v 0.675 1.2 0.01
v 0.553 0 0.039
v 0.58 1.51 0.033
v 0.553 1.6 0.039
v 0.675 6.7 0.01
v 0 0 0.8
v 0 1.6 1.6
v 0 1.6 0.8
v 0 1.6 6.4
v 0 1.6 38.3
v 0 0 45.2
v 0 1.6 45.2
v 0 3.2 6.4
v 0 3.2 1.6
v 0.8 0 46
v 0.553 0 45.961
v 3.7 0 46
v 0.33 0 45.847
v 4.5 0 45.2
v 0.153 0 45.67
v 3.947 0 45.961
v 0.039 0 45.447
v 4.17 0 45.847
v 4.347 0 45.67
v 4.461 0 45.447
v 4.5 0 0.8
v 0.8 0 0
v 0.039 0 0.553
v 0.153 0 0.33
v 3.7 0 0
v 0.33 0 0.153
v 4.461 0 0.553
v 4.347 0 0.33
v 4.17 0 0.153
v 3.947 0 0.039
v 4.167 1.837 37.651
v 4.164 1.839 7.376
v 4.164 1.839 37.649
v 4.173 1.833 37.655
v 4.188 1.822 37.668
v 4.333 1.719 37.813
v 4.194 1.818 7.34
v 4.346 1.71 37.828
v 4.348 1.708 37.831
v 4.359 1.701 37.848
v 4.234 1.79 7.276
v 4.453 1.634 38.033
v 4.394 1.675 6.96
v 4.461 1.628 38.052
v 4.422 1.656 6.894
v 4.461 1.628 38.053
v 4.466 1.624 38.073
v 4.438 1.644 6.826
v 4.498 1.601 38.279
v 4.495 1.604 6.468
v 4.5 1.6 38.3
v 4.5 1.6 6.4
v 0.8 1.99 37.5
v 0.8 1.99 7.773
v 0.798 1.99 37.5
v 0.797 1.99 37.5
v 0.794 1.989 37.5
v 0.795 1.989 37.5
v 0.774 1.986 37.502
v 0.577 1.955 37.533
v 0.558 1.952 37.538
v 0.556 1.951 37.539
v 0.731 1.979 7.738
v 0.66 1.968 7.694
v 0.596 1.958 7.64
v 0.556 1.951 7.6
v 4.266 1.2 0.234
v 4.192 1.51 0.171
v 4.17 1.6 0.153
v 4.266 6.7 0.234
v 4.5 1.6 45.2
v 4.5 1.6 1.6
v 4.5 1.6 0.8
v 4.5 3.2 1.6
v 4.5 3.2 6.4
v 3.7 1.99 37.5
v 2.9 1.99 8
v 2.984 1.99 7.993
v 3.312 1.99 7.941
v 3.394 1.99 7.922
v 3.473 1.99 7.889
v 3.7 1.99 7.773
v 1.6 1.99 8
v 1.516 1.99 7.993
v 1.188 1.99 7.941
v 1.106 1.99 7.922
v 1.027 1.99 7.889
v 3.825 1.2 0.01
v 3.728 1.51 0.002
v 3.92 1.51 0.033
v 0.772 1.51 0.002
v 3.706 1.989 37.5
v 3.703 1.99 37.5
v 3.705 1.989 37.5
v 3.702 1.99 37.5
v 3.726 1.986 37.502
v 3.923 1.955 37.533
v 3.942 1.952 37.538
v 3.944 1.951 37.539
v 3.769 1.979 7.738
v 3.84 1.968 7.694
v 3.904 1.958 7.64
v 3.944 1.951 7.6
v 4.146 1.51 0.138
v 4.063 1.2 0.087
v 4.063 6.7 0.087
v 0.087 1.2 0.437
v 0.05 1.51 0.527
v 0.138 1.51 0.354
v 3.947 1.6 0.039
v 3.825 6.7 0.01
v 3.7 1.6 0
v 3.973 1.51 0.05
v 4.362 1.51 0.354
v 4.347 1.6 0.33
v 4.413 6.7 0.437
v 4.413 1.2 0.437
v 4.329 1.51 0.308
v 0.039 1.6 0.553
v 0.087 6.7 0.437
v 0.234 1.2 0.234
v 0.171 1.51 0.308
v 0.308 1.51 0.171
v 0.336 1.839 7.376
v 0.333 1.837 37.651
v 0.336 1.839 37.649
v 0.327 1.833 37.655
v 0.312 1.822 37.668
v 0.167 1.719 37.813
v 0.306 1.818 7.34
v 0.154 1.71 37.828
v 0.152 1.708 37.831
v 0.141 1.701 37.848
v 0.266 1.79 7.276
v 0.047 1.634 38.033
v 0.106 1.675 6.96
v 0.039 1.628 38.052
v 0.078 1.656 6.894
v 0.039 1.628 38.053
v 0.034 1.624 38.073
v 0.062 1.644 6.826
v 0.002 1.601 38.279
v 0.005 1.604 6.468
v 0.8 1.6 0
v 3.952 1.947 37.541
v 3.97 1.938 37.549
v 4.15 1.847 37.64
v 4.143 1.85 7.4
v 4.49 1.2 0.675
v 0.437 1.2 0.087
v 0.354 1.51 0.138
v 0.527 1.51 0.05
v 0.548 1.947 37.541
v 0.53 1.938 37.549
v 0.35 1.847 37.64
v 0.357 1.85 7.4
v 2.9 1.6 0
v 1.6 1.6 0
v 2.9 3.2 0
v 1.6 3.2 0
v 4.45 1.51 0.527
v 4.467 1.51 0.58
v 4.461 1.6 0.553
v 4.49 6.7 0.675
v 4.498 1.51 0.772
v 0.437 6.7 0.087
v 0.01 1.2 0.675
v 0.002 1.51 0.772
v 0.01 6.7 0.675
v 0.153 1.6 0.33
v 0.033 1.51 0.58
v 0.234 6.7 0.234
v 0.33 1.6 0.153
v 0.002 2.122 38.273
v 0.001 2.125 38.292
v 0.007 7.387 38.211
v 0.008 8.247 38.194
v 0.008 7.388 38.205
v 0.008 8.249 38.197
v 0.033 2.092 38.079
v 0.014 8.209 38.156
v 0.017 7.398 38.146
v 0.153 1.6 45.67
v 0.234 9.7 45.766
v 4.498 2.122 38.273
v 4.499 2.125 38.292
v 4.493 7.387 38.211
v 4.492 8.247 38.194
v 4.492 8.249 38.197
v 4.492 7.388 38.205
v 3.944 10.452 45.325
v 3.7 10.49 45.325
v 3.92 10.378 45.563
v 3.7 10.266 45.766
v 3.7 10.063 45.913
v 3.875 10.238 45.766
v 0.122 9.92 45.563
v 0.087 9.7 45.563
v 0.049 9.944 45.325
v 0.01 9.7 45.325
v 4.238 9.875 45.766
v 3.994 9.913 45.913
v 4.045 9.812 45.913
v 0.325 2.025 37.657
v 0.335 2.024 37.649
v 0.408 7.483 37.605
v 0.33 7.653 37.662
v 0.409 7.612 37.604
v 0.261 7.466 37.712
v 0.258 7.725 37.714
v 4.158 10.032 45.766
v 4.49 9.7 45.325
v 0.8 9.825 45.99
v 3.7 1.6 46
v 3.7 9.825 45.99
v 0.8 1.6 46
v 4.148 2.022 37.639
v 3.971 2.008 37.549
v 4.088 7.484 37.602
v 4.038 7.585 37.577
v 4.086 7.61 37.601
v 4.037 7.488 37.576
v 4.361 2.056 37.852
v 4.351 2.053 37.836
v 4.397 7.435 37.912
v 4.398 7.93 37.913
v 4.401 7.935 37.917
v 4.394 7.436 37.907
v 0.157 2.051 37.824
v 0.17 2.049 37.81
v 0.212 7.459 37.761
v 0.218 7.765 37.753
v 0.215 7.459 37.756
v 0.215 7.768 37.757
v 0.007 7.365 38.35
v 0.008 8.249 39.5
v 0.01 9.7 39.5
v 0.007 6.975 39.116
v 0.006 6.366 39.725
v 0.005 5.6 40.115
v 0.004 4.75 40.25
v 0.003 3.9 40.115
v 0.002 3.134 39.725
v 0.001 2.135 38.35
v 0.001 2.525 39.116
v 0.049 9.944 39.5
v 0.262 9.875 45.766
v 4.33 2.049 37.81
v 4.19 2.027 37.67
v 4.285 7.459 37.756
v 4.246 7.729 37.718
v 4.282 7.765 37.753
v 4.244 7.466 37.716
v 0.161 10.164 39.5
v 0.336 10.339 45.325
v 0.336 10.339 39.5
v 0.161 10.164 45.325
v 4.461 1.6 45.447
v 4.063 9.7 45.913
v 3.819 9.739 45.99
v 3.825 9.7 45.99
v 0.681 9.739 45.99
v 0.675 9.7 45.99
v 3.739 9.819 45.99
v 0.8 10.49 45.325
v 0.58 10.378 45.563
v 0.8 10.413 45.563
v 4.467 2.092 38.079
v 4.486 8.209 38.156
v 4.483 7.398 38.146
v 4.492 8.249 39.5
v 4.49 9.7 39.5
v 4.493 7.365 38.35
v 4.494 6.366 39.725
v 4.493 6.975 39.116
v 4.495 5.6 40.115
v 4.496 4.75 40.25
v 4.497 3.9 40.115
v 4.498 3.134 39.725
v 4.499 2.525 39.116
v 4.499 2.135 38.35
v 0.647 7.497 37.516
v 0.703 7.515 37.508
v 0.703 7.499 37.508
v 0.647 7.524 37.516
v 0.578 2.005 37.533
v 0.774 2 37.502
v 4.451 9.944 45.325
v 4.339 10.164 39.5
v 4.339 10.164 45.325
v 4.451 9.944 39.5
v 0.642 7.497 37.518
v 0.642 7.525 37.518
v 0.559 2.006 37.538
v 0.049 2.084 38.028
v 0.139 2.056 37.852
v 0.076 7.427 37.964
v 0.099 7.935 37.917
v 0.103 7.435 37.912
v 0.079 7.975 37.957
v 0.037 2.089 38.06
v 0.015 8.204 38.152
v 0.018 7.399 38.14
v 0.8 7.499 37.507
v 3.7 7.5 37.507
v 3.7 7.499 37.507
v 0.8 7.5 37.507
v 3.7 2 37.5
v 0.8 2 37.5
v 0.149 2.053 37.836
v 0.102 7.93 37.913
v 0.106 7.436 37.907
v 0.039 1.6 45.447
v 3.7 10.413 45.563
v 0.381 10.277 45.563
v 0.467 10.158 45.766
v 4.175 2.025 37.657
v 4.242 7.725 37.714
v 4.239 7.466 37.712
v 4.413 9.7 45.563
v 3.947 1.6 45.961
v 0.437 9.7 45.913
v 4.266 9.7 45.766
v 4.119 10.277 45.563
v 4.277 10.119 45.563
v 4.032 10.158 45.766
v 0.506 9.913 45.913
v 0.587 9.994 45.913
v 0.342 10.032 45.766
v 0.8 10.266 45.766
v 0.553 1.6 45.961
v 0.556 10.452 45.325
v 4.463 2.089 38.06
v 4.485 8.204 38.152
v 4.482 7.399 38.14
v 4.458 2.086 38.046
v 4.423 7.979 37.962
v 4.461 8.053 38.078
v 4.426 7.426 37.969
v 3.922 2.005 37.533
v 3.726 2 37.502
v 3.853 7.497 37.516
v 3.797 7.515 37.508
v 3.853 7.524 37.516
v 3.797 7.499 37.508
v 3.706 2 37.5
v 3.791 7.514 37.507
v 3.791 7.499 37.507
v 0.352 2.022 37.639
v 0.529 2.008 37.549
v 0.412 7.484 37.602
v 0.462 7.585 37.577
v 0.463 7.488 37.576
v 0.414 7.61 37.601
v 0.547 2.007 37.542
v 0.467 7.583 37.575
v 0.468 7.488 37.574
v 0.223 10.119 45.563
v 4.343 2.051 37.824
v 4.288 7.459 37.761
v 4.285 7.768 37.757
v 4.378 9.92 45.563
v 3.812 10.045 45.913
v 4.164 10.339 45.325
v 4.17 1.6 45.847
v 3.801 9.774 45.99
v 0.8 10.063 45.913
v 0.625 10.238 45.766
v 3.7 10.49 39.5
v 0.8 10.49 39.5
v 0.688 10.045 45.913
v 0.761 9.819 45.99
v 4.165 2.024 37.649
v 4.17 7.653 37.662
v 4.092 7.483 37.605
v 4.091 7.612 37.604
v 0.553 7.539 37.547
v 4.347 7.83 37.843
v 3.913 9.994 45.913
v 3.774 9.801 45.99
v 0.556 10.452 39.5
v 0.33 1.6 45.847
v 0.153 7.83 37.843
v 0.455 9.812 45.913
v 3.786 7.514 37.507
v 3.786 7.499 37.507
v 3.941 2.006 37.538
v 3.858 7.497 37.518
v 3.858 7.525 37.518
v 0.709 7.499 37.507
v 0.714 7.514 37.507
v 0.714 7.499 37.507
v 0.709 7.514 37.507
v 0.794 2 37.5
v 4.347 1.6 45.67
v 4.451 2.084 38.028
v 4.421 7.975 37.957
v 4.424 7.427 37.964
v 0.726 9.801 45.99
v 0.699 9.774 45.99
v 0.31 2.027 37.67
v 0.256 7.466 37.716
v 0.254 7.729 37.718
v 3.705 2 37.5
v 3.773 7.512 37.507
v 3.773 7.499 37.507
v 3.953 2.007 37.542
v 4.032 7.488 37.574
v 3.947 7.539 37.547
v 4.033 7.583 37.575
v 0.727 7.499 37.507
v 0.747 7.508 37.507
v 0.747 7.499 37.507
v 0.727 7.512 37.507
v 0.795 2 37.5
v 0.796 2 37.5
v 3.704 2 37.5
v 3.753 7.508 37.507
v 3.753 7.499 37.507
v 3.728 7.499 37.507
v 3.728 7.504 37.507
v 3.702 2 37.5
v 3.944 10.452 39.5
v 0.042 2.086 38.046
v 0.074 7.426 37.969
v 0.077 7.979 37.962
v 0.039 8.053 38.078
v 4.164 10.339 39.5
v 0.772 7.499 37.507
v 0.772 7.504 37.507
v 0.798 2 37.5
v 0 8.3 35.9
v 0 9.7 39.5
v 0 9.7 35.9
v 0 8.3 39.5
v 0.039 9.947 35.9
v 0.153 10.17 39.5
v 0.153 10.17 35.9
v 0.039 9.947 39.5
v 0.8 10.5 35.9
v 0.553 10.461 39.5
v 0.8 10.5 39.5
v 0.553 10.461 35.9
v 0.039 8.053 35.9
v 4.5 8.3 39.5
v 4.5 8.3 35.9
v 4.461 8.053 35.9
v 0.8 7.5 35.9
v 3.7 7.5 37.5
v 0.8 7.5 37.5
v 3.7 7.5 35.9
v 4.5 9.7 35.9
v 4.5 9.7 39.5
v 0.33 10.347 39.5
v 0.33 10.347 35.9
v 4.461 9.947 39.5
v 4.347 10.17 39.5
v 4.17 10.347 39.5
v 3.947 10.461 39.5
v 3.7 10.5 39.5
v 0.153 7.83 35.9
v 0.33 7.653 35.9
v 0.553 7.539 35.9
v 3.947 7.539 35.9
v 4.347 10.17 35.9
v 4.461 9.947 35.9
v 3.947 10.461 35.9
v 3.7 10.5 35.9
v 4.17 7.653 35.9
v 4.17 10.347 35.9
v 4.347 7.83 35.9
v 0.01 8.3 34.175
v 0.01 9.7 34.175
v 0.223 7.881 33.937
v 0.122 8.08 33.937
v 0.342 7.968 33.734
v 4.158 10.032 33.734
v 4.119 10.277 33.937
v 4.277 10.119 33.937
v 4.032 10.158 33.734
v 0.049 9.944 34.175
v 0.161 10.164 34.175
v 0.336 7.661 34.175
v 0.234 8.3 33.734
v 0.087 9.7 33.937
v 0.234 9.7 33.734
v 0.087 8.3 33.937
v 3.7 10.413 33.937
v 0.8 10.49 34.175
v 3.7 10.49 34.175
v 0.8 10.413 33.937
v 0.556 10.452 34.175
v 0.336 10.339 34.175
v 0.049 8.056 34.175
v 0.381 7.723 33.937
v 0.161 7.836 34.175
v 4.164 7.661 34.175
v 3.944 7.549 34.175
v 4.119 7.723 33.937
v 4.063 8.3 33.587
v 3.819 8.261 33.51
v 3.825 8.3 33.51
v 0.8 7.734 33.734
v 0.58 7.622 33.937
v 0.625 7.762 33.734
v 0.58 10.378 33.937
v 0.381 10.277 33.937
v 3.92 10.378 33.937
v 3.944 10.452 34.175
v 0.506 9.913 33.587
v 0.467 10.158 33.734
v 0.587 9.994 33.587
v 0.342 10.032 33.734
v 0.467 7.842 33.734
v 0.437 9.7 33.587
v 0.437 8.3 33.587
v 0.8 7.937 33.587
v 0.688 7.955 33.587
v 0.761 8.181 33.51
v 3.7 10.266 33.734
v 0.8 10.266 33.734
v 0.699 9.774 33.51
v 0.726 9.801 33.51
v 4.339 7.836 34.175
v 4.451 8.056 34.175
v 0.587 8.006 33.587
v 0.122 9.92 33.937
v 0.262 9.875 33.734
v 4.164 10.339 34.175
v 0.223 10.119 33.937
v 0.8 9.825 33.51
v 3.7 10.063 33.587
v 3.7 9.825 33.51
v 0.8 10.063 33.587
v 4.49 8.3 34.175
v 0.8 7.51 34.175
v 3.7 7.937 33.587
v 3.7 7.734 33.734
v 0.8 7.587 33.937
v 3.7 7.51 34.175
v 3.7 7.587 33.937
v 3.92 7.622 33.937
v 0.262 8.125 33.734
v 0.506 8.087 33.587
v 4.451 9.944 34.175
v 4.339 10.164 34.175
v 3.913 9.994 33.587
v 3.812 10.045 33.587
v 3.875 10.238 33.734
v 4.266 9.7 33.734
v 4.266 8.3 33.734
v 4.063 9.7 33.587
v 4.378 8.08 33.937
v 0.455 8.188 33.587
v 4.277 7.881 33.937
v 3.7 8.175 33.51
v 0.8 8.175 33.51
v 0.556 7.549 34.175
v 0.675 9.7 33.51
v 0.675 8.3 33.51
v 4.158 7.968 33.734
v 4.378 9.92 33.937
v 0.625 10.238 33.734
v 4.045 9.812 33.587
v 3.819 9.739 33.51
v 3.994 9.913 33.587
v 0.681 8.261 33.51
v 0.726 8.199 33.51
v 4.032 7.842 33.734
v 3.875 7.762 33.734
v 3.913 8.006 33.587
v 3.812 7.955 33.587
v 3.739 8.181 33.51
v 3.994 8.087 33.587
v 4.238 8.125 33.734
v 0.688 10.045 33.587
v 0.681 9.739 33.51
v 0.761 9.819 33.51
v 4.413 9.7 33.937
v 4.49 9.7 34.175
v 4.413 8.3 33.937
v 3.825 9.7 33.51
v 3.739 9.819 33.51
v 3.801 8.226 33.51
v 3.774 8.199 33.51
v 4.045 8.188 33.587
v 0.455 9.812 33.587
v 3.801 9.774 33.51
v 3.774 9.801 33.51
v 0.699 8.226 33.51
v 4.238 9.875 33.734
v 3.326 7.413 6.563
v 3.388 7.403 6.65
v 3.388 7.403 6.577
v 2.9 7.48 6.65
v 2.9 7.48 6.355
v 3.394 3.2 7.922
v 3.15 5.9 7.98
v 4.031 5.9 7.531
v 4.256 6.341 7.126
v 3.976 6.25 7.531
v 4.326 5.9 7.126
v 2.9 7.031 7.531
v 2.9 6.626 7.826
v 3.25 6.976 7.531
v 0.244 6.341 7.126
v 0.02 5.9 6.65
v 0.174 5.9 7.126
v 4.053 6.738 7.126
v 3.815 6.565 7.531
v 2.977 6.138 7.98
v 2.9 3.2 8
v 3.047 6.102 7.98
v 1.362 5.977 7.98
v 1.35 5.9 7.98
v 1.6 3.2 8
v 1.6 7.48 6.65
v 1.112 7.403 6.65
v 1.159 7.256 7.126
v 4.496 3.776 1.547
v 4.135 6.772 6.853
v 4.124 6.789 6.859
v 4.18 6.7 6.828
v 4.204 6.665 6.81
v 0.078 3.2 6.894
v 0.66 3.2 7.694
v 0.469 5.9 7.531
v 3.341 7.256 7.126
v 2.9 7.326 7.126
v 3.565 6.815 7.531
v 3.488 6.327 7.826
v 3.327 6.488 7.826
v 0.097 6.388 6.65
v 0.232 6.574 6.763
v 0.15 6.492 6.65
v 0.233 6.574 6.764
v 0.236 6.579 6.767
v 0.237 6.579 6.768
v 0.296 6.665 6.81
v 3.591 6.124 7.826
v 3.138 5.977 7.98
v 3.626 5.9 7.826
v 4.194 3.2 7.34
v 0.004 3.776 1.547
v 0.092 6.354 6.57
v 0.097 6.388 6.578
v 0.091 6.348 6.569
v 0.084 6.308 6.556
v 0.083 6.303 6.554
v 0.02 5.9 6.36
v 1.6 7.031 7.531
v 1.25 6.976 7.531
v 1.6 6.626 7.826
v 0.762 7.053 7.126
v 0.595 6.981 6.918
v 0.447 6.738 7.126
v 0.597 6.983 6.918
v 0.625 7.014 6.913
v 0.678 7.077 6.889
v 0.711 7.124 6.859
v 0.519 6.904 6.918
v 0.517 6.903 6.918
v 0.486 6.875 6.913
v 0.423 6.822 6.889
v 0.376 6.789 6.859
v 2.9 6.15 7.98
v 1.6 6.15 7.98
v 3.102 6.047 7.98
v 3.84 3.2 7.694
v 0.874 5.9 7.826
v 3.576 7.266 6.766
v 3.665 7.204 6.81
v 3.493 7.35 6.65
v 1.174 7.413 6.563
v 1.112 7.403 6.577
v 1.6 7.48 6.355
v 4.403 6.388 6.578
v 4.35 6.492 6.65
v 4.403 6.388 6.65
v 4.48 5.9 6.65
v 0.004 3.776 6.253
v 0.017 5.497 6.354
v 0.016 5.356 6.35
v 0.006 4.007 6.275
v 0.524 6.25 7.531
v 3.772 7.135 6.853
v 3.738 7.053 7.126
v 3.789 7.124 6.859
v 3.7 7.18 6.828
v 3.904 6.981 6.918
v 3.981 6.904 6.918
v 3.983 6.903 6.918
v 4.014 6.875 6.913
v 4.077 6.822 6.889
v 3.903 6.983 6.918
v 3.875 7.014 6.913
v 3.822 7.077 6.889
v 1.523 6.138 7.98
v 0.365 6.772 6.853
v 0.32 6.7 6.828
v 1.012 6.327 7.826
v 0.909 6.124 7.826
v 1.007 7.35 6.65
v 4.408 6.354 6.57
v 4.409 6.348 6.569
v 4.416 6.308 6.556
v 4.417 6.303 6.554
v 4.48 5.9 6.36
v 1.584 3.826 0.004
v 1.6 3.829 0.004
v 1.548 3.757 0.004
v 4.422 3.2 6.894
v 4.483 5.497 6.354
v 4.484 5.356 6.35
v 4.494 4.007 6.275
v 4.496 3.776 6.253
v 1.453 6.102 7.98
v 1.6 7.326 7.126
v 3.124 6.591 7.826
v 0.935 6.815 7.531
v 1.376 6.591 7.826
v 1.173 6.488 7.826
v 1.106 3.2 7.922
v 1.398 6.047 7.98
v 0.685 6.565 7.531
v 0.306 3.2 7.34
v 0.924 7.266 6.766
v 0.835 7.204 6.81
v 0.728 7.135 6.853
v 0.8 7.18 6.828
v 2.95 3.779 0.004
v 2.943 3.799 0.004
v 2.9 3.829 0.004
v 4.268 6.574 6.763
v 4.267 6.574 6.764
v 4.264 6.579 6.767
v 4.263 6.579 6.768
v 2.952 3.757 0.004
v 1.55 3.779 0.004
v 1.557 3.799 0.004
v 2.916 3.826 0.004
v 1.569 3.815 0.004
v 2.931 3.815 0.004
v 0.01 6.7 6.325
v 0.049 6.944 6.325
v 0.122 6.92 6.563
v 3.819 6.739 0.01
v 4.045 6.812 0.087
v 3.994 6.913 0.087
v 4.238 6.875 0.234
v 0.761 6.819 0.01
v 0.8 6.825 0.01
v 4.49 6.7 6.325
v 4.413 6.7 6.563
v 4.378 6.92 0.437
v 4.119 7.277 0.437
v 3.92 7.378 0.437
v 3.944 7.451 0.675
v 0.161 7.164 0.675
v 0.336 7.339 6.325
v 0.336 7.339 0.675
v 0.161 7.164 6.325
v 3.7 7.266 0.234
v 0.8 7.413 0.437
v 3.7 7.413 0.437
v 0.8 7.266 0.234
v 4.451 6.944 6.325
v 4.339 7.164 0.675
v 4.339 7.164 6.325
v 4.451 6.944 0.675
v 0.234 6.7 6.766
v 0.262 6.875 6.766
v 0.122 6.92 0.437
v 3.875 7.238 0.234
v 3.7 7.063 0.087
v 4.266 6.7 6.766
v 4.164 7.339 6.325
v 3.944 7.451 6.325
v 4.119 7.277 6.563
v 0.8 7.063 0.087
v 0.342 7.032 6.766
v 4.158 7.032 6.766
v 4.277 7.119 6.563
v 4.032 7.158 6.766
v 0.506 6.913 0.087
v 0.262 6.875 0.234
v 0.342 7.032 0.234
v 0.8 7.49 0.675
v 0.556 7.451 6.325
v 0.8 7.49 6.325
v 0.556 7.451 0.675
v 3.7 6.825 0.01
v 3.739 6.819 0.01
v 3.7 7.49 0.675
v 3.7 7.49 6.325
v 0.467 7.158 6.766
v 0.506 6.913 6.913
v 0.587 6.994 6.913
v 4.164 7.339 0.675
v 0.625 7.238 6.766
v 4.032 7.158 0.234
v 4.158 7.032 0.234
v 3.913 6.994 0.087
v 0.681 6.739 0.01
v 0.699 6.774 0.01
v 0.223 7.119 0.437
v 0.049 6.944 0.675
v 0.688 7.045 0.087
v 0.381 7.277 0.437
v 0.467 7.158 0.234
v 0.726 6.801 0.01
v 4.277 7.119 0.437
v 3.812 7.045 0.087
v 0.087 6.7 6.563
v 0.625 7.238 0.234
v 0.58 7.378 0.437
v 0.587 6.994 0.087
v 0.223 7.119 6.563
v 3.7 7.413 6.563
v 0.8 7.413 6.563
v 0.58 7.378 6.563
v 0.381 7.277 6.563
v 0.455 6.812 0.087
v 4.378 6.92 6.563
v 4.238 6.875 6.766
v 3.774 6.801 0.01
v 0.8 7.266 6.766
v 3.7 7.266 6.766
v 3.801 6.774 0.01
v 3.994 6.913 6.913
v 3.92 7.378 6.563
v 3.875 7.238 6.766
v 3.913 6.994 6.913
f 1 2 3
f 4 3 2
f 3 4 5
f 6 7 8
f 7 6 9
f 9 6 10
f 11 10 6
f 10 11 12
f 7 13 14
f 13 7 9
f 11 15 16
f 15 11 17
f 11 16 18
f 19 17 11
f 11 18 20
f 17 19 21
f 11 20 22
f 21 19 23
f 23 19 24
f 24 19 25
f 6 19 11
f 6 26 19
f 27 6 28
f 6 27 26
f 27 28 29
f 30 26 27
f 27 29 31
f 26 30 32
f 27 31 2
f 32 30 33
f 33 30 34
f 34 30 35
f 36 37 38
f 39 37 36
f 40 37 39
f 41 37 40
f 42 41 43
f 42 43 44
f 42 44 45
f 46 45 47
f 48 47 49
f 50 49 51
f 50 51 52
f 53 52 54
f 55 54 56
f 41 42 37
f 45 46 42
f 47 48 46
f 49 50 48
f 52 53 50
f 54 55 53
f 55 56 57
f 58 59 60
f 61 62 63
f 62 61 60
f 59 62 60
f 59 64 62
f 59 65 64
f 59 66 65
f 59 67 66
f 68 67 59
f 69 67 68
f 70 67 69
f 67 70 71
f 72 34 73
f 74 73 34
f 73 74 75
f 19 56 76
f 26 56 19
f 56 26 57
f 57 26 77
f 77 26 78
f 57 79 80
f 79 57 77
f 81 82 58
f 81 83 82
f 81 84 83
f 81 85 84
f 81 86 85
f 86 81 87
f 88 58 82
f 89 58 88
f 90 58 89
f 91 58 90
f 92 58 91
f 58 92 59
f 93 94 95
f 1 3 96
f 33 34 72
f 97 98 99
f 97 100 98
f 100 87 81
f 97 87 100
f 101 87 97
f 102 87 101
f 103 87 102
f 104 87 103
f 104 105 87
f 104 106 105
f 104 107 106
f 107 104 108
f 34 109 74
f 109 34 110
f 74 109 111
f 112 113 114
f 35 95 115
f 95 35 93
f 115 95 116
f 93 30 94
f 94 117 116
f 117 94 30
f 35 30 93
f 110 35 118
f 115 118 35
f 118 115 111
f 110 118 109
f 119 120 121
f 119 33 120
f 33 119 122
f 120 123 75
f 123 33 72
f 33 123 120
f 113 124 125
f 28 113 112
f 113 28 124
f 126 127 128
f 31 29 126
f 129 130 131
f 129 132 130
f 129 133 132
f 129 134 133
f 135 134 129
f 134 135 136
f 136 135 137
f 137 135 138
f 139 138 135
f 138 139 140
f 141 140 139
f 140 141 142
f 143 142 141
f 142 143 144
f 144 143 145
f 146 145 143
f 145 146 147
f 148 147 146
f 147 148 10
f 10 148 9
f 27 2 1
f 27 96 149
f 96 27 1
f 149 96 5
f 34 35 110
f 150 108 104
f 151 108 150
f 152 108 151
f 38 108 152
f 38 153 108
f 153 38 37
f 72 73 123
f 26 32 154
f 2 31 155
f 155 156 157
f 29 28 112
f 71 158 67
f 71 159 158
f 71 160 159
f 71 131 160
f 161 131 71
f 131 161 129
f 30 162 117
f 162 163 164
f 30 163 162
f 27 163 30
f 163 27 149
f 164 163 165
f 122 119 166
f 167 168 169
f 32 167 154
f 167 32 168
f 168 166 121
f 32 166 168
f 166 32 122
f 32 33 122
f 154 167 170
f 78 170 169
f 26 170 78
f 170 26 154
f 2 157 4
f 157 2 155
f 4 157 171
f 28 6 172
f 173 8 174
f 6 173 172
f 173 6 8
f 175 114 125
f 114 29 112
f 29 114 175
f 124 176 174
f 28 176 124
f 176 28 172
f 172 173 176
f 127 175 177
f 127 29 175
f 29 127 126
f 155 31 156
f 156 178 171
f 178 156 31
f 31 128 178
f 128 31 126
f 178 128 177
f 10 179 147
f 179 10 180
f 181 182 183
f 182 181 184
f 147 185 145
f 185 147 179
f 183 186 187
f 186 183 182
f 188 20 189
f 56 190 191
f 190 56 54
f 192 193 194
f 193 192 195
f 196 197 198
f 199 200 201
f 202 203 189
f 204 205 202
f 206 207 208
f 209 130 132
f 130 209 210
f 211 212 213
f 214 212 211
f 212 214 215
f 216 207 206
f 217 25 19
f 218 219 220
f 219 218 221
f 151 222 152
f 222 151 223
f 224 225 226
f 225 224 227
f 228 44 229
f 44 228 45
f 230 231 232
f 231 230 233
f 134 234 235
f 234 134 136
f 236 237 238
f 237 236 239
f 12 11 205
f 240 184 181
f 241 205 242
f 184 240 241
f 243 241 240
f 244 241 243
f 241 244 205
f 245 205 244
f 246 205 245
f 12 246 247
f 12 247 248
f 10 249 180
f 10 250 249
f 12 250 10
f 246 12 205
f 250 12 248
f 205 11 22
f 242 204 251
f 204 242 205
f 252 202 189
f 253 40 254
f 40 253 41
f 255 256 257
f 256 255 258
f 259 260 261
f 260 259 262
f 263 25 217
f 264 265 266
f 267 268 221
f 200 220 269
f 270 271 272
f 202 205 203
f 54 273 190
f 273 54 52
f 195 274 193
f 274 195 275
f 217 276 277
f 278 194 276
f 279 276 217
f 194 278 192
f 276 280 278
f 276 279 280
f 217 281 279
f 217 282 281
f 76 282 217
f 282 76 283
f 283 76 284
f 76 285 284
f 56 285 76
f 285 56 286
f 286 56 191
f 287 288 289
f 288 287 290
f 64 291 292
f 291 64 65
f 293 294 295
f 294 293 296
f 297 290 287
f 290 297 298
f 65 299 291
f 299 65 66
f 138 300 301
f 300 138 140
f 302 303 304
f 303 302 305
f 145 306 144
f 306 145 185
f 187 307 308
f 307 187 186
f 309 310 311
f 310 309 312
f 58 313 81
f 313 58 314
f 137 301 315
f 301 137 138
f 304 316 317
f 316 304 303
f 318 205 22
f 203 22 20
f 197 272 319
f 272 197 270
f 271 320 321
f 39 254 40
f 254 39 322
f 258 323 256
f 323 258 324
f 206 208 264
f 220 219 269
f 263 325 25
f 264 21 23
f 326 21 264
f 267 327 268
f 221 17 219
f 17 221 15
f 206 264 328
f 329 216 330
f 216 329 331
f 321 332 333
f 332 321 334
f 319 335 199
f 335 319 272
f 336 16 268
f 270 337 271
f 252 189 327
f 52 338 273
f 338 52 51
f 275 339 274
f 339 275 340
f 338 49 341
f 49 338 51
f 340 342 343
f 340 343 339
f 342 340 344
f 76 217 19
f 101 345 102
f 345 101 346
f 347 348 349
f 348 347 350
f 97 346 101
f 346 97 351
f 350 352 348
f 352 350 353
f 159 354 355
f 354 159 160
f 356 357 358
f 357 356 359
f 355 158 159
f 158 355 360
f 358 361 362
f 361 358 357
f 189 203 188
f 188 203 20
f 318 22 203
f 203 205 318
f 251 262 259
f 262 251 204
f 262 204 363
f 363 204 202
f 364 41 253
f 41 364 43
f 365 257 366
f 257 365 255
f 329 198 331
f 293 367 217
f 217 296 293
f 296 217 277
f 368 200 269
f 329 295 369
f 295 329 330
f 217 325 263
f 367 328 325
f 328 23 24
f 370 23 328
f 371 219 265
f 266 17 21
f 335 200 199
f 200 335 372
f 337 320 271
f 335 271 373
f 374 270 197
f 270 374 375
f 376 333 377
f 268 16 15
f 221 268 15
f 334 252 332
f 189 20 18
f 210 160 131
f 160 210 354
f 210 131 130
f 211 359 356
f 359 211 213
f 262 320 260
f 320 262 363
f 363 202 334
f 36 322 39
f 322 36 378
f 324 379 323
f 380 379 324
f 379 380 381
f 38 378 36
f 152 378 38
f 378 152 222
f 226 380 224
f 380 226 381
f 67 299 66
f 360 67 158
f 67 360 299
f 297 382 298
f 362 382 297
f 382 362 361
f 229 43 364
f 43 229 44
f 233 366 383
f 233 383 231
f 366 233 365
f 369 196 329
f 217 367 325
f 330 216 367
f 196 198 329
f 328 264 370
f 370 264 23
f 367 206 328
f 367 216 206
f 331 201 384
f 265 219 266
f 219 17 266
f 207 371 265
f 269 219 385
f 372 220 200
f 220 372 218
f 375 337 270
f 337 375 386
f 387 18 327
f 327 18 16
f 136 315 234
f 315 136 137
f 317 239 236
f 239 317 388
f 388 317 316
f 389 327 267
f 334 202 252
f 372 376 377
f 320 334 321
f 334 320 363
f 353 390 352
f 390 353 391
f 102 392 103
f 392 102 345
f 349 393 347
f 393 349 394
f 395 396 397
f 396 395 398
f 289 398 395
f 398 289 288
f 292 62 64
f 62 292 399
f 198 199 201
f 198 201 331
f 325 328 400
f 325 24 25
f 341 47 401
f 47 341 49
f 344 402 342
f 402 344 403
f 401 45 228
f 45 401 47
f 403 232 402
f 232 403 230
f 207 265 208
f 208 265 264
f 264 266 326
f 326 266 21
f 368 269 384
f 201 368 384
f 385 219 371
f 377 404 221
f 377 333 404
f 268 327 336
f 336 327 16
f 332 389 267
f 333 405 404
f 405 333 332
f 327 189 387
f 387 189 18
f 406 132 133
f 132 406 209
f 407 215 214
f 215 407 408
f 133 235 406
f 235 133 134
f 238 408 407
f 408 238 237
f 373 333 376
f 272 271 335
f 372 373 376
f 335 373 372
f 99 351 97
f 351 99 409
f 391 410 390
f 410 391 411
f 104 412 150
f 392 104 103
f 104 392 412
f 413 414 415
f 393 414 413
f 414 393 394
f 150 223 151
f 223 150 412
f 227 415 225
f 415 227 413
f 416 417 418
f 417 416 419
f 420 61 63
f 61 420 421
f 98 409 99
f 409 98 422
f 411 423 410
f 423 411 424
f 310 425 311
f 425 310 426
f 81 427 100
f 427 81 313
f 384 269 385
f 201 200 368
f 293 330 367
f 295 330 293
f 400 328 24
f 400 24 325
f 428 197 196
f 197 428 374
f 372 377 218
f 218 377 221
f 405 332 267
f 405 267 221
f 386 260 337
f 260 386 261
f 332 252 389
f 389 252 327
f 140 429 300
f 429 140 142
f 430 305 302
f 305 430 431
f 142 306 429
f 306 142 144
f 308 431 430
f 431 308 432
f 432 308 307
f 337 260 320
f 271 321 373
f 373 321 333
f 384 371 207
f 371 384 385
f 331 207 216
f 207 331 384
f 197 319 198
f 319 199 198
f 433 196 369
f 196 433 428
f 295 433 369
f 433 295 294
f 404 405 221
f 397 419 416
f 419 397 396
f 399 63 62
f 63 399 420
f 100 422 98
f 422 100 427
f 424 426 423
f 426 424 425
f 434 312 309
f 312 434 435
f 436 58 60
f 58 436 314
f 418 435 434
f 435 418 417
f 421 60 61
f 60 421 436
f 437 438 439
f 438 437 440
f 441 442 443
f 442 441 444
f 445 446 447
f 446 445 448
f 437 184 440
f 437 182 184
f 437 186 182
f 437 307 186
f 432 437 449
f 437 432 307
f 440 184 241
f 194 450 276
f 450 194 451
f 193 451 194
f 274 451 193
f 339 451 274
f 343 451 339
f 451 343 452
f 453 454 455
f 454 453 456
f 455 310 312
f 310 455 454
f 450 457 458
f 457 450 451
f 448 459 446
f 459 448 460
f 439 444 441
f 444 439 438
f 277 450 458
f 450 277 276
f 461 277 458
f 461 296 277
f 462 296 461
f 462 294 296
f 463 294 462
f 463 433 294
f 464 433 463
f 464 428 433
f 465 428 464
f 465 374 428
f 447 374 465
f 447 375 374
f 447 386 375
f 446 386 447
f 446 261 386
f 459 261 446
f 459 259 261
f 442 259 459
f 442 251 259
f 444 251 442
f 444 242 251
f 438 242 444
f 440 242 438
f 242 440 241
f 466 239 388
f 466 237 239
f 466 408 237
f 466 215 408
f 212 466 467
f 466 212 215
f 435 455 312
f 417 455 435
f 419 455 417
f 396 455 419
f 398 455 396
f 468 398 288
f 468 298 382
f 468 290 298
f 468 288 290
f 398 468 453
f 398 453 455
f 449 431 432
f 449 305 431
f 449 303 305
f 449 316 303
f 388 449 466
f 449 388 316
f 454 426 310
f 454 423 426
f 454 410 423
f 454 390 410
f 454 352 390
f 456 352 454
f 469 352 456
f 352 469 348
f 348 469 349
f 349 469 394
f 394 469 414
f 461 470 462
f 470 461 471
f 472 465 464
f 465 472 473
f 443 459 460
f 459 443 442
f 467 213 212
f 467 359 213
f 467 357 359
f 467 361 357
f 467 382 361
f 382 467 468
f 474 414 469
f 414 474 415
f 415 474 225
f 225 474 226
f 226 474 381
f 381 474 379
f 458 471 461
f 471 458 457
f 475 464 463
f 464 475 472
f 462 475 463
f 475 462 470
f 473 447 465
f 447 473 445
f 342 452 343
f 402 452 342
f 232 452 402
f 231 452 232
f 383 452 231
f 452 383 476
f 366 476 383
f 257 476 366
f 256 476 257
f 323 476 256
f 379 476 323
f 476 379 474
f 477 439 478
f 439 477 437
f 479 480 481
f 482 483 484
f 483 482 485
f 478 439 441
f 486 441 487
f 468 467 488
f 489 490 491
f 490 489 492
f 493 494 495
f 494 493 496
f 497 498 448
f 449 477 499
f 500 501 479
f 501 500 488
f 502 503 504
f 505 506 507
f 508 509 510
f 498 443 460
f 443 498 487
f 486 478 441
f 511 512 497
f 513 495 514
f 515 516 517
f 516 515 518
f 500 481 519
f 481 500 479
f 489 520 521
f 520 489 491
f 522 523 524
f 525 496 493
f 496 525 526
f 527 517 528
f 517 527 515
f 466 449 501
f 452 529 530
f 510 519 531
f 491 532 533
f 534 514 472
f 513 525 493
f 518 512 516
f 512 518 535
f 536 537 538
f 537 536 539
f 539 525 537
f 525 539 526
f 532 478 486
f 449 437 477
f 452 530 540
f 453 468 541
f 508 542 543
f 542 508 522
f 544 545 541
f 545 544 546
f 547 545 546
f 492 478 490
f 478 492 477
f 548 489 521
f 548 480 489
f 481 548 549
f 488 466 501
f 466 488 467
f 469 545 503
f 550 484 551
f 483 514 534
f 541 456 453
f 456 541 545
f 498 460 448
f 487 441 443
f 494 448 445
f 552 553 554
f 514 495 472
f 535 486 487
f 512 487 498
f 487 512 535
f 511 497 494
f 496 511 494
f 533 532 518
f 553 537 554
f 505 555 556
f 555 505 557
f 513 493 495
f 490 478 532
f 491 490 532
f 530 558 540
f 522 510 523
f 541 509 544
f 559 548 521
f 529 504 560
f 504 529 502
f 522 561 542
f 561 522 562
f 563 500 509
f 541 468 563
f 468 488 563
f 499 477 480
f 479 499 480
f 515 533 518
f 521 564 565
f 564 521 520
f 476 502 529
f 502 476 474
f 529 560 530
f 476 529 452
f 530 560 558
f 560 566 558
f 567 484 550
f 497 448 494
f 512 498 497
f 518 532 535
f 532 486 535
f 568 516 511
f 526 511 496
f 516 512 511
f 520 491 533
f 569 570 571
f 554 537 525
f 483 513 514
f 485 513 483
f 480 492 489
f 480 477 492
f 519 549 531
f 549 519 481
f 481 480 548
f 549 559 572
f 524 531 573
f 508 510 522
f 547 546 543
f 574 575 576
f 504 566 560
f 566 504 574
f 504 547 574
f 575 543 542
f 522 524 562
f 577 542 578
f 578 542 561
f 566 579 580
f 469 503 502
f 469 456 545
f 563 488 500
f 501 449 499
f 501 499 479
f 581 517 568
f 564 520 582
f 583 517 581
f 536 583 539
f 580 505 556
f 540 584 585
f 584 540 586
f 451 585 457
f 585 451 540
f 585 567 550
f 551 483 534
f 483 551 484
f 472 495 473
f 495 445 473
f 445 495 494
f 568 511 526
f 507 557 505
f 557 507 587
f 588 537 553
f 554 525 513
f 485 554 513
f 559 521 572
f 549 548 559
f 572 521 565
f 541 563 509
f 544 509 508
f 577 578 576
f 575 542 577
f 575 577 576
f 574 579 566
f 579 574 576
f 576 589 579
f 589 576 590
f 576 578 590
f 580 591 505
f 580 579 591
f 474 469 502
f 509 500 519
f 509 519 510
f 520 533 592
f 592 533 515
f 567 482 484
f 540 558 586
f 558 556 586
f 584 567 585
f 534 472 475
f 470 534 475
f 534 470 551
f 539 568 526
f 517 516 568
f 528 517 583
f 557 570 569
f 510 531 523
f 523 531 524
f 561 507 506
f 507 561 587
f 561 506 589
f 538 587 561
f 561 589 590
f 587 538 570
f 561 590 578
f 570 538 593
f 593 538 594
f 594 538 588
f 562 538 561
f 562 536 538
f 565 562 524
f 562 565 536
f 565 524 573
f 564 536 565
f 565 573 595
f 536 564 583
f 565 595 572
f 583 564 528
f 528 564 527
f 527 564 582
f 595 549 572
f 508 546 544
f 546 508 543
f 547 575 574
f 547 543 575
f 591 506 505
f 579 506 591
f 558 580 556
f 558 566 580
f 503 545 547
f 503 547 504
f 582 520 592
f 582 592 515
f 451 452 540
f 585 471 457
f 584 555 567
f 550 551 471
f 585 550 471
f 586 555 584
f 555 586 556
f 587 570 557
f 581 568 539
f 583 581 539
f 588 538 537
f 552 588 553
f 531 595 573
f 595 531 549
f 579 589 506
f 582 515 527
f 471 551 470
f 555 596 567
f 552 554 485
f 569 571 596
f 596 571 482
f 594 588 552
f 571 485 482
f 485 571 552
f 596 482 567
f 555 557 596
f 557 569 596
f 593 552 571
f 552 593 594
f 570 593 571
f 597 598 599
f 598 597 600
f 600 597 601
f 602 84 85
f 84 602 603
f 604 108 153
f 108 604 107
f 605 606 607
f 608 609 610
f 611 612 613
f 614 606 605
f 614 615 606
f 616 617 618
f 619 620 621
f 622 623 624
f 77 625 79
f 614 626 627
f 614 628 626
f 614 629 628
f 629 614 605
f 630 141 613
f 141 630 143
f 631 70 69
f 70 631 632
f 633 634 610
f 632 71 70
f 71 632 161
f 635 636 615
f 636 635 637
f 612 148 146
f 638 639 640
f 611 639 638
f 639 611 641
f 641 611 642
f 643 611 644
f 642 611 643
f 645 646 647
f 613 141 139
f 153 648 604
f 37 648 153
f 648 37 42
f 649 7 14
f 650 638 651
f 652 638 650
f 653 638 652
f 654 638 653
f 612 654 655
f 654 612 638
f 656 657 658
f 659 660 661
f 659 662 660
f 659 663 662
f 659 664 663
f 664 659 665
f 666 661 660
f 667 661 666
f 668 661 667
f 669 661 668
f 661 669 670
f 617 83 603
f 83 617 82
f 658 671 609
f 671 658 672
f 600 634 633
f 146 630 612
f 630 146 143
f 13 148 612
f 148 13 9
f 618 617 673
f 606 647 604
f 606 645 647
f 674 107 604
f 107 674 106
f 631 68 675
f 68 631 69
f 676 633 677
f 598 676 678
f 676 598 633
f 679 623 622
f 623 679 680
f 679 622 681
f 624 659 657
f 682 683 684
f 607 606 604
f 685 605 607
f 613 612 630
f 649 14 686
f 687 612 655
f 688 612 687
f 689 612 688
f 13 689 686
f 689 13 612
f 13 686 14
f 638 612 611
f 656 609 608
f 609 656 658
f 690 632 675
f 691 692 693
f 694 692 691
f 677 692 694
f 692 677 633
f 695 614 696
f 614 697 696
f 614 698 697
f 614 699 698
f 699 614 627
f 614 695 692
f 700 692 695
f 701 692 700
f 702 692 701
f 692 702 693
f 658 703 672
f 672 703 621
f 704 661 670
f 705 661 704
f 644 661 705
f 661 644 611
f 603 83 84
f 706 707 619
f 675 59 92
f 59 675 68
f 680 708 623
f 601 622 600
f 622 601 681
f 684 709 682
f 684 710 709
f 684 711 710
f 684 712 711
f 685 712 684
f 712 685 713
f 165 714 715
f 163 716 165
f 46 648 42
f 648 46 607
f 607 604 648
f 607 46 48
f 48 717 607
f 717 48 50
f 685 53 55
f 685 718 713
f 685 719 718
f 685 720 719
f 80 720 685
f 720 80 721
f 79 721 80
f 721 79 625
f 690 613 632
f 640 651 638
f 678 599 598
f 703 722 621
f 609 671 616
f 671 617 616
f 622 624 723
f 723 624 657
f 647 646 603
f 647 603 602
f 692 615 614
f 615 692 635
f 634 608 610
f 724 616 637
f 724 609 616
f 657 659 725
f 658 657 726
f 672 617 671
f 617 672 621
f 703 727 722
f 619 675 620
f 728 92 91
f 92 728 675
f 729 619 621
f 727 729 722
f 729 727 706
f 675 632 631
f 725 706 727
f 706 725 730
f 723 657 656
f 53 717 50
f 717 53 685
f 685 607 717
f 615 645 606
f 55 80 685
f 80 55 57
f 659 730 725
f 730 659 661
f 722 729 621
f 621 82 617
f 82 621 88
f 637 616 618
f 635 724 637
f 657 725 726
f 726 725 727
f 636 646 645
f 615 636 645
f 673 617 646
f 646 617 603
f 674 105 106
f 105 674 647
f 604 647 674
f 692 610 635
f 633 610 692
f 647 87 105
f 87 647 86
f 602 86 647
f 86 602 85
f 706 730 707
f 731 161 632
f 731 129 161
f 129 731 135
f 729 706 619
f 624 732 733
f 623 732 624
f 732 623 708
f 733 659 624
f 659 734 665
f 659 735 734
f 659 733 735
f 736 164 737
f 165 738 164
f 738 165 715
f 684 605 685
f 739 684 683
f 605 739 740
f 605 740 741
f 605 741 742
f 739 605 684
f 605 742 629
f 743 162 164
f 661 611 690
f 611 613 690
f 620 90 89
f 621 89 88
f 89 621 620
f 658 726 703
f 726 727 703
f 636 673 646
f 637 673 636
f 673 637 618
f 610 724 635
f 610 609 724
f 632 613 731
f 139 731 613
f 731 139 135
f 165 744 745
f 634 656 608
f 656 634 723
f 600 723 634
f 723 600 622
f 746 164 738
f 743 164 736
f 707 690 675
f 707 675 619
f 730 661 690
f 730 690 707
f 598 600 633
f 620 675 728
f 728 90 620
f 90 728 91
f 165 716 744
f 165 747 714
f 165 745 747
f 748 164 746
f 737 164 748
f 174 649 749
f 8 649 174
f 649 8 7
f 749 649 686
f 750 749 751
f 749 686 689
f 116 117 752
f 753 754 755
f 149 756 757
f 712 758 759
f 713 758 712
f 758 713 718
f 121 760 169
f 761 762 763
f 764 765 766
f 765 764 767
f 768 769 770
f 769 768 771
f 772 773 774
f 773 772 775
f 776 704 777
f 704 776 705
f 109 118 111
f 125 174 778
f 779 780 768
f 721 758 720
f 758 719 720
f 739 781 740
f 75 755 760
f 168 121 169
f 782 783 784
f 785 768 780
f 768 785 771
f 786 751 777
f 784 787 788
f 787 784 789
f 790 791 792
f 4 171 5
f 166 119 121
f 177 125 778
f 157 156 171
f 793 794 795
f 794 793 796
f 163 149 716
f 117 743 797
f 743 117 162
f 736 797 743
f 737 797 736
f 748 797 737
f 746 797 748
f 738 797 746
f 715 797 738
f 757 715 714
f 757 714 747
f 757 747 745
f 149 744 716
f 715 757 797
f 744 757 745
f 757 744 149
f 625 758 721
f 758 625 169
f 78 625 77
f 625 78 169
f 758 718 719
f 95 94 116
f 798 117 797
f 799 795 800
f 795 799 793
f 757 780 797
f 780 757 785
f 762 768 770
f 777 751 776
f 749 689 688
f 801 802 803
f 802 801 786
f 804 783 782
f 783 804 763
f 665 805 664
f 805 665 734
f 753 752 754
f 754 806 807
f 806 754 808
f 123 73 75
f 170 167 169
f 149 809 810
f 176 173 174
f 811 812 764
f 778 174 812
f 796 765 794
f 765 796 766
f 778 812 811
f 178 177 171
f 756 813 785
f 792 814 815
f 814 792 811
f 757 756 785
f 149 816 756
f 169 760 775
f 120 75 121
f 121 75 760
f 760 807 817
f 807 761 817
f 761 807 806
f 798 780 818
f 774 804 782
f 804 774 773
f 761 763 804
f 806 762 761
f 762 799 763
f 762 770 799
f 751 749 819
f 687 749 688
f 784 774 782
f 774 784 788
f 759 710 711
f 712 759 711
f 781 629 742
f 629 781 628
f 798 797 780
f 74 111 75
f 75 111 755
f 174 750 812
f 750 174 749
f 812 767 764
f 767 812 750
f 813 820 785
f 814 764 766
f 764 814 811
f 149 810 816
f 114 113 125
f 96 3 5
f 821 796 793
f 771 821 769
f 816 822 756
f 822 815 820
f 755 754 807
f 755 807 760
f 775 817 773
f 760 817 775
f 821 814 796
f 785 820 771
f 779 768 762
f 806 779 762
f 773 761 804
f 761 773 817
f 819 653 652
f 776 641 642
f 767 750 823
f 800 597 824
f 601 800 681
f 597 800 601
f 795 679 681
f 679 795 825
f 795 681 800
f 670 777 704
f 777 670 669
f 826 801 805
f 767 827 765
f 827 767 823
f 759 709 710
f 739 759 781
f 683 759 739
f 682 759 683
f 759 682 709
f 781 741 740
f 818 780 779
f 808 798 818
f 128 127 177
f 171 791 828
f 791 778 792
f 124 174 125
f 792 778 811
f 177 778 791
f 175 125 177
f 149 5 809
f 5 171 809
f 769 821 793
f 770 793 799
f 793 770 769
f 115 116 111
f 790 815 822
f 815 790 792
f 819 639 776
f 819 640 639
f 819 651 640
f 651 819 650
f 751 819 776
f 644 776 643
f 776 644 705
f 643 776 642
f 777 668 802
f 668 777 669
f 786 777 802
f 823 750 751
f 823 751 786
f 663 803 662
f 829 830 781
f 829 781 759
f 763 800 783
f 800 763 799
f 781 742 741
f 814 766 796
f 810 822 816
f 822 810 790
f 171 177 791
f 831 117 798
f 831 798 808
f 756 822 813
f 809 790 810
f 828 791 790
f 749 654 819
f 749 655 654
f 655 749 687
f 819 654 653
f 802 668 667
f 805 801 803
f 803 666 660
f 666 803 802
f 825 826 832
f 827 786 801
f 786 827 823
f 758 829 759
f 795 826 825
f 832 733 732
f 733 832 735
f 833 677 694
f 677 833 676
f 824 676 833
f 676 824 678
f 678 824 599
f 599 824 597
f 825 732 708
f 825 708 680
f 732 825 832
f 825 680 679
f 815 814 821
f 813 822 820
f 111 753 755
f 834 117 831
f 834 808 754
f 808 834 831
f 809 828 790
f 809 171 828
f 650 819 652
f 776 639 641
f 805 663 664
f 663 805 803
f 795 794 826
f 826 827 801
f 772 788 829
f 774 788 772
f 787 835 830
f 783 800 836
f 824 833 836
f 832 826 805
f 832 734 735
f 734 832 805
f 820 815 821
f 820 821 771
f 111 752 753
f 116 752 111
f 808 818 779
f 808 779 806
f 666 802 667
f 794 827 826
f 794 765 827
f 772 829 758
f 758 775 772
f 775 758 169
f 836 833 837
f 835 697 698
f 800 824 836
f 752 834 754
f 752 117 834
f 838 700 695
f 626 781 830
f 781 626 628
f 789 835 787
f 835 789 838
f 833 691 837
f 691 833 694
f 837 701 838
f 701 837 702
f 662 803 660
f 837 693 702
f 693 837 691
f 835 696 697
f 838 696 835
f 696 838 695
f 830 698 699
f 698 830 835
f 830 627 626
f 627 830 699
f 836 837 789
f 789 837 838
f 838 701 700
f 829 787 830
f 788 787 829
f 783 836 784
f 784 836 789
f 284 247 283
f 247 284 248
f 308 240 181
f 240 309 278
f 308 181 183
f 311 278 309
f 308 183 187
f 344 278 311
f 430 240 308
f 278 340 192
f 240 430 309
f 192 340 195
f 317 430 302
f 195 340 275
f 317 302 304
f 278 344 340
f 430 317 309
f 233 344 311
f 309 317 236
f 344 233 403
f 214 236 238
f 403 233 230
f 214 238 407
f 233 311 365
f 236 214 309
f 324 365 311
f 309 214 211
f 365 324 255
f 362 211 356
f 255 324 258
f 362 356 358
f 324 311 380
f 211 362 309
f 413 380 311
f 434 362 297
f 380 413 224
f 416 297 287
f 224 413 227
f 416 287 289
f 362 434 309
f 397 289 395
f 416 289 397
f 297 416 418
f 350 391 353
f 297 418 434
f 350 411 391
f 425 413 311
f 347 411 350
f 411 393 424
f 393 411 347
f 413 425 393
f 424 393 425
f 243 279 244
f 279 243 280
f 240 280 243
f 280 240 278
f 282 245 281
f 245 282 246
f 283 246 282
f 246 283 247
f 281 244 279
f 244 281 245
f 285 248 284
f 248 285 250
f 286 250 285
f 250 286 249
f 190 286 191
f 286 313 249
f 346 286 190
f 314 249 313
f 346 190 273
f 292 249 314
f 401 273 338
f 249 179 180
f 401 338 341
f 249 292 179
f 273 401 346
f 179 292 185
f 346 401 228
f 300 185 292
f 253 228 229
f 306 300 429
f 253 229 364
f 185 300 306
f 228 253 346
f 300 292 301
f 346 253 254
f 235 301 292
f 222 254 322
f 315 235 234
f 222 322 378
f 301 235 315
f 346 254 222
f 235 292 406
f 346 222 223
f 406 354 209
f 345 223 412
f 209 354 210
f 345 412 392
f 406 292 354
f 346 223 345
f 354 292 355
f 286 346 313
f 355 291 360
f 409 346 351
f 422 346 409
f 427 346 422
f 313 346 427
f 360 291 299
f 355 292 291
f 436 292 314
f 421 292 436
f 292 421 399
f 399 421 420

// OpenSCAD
// file: ../modules/roundedcube.scad
// More information: https://danielupshaw.com/openscad-rounded-corners/


// Examples
// color("Yellow")
// roundedcube(3, true, 0.7, "xmin");

// translate(v = [1, 0, 2])
// color("Pink")
// roundedcube([4, 2, 2], false, 0.6, "zmax");

// translate(v = [-4, -1, 2])
// color("Lightblue")
// roundedcube(2, false);

// translate(v = [0, 0, 6])
// color("Orange")
// roundedcube([3, 2, 2], true, 0.2);

// translate(v = [2.5, -0.5, 5])
// color("Green")
// roundedcube([3, 2, 2], false, 0.4, "z");

// Set to 0.01 for higher definition curves (renders slower)
$fs = 0.15;

module roundedcube(size = [1, 1, 1], center = false, radius = 0.5, apply_to = "all") {
	// If single value, convert to [x, y, z] vector
	size = (size[0] == undef) ? [size, size, size] : size;

	translate_min = radius;
	translate_xmax = size[0] - radius;
	translate_ymax = size[1] - radius;
	translate_zmax = size[2] - radius;

	diameter = radius * 2;

	obj_translate = (center == false) ?
		[0, 0, 0] : [
			-(size[0] / 2),
			-(size[1] / 2),
			-(size[2] / 2)
		];

	translate(v = obj_translate) {
		hull() {
			for (translate_x = [translate_min, translate_xmax]) {
				x_at = (translate_x == translate_min) ? "min" : "max";
				for (translate_y = [translate_min, translate_ymax]) {
					y_at = (translate_y == translate_min) ? "min" : "max";
					for (translate_z = [translate_min, translate_zmax]) {
						z_at = (translate_z == translate_min) ? "min" : "max";

						translate(v = [translate_x, translate_y, translate_z])
						if (
							(apply_to == "all") ||
							(apply_to == "xmin" && x_at == "min") || (apply_to == "xmax" && x_at == "max") ||
							(apply_to == "ymin" && y_at == "min") || (apply_to == "ymax" && y_at == "max") ||
							(apply_to == "zmin" && z_at == "min") || (apply_to == "zmax" && z_at == "max")
						) {
							sphere(r = radius);
						} else {
							rotate = 
								(apply_to == "xmin" || apply_to == "xmax" || apply_to == "x") ? [0, 90, 0] : (
								(apply_to == "ymin" || apply_to == "ymax" || apply_to == "y") ? [90, 90, 0] :
								[0, 0, 0]
							);
							rotate(a = rotate)
							cylinder(h = diameter, r = radius, center = true);
						}
					}
				}
			}
		}
	}
}
// main file
$fn=20;

sh_height=43;
sh_width=4.5;
sh_hanger_spacing=5.5;
sh_material_size=2;
sh_short_tail=4;
sh_corner_radius = 0.8;

use <../modules/roundedcube.scad>

module ikea_skadis_holder() {
    difference() {
        union() {
            
            //Vertical wall
            color("green")
            roundedcube(size = [sh_width,sh_material_size,sh_height], center = false, radius = sh_corner_radius, apply_to = "ymax");
            //cube([sh_width,sh_material_size,sh_height]);
            
            // Retainer
            color("blue")
            translate([0,0,sh_height-sh_hanger_spacing])
            roundedcube(size = [sh_width, sh_hanger_spacing + sh_material_size * 2 + 1, sh_hanger_spacing + 3], center = false, radius = sh_corner_radius, apply_to = "ymax");

            //Vertical wall connection (short)
            color("cyan")
            translate([0, sh_hanger_spacing + sh_material_size , sh_height - sh_hanger_spacing])
            roundedcube(size = [sh_width, sh_material_size + 1, 2], center = false, radius = sh_corner_radius, apply_to = "z");

            //Vertical wall (short)
            color("cyan")
            translate([0, sh_hanger_spacing + sh_material_size , sh_height - sh_short_tail - sh_hanger_spacing])
            //cube([sh_width,sh_material_size+1,sh_short_tail]);
            roundedcube(size = [sh_width, sh_material_size + 1, sh_short_tail], center = false, radius = sh_corner_radius, apply_to = "zmin");

            //Schnöpsel
            color("yellow")
            translate([0, sh_material_size - 2, 0])
            roundedcube(size = [sh_width, sh_hanger_spacing + 2, 8], center = false, radius = sh_corner_radius + 0.8, apply_to = "ymax");

            //Schnöpsel - Angleichen des unteren radius
            color("yellow")
            translate([0, sh_material_size - 2, 0])
            roundedcube(size = [sh_width, sh_hanger_spacing + 2, 7], center = false, radius = sh_corner_radius, apply_to = "ymax");

        }
        
        
    color("red")
    translate([-1,sh_material_size+sh_hanger_spacing/2,sh_height-sh_hanger_spacing])
    rotate([0,90,0])
    cylinder(sh_width+2, sh_hanger_spacing/2, sh_hanger_spacing/2);
        
    }
}
//color("Yellow")
ikea_skadis_holder();
